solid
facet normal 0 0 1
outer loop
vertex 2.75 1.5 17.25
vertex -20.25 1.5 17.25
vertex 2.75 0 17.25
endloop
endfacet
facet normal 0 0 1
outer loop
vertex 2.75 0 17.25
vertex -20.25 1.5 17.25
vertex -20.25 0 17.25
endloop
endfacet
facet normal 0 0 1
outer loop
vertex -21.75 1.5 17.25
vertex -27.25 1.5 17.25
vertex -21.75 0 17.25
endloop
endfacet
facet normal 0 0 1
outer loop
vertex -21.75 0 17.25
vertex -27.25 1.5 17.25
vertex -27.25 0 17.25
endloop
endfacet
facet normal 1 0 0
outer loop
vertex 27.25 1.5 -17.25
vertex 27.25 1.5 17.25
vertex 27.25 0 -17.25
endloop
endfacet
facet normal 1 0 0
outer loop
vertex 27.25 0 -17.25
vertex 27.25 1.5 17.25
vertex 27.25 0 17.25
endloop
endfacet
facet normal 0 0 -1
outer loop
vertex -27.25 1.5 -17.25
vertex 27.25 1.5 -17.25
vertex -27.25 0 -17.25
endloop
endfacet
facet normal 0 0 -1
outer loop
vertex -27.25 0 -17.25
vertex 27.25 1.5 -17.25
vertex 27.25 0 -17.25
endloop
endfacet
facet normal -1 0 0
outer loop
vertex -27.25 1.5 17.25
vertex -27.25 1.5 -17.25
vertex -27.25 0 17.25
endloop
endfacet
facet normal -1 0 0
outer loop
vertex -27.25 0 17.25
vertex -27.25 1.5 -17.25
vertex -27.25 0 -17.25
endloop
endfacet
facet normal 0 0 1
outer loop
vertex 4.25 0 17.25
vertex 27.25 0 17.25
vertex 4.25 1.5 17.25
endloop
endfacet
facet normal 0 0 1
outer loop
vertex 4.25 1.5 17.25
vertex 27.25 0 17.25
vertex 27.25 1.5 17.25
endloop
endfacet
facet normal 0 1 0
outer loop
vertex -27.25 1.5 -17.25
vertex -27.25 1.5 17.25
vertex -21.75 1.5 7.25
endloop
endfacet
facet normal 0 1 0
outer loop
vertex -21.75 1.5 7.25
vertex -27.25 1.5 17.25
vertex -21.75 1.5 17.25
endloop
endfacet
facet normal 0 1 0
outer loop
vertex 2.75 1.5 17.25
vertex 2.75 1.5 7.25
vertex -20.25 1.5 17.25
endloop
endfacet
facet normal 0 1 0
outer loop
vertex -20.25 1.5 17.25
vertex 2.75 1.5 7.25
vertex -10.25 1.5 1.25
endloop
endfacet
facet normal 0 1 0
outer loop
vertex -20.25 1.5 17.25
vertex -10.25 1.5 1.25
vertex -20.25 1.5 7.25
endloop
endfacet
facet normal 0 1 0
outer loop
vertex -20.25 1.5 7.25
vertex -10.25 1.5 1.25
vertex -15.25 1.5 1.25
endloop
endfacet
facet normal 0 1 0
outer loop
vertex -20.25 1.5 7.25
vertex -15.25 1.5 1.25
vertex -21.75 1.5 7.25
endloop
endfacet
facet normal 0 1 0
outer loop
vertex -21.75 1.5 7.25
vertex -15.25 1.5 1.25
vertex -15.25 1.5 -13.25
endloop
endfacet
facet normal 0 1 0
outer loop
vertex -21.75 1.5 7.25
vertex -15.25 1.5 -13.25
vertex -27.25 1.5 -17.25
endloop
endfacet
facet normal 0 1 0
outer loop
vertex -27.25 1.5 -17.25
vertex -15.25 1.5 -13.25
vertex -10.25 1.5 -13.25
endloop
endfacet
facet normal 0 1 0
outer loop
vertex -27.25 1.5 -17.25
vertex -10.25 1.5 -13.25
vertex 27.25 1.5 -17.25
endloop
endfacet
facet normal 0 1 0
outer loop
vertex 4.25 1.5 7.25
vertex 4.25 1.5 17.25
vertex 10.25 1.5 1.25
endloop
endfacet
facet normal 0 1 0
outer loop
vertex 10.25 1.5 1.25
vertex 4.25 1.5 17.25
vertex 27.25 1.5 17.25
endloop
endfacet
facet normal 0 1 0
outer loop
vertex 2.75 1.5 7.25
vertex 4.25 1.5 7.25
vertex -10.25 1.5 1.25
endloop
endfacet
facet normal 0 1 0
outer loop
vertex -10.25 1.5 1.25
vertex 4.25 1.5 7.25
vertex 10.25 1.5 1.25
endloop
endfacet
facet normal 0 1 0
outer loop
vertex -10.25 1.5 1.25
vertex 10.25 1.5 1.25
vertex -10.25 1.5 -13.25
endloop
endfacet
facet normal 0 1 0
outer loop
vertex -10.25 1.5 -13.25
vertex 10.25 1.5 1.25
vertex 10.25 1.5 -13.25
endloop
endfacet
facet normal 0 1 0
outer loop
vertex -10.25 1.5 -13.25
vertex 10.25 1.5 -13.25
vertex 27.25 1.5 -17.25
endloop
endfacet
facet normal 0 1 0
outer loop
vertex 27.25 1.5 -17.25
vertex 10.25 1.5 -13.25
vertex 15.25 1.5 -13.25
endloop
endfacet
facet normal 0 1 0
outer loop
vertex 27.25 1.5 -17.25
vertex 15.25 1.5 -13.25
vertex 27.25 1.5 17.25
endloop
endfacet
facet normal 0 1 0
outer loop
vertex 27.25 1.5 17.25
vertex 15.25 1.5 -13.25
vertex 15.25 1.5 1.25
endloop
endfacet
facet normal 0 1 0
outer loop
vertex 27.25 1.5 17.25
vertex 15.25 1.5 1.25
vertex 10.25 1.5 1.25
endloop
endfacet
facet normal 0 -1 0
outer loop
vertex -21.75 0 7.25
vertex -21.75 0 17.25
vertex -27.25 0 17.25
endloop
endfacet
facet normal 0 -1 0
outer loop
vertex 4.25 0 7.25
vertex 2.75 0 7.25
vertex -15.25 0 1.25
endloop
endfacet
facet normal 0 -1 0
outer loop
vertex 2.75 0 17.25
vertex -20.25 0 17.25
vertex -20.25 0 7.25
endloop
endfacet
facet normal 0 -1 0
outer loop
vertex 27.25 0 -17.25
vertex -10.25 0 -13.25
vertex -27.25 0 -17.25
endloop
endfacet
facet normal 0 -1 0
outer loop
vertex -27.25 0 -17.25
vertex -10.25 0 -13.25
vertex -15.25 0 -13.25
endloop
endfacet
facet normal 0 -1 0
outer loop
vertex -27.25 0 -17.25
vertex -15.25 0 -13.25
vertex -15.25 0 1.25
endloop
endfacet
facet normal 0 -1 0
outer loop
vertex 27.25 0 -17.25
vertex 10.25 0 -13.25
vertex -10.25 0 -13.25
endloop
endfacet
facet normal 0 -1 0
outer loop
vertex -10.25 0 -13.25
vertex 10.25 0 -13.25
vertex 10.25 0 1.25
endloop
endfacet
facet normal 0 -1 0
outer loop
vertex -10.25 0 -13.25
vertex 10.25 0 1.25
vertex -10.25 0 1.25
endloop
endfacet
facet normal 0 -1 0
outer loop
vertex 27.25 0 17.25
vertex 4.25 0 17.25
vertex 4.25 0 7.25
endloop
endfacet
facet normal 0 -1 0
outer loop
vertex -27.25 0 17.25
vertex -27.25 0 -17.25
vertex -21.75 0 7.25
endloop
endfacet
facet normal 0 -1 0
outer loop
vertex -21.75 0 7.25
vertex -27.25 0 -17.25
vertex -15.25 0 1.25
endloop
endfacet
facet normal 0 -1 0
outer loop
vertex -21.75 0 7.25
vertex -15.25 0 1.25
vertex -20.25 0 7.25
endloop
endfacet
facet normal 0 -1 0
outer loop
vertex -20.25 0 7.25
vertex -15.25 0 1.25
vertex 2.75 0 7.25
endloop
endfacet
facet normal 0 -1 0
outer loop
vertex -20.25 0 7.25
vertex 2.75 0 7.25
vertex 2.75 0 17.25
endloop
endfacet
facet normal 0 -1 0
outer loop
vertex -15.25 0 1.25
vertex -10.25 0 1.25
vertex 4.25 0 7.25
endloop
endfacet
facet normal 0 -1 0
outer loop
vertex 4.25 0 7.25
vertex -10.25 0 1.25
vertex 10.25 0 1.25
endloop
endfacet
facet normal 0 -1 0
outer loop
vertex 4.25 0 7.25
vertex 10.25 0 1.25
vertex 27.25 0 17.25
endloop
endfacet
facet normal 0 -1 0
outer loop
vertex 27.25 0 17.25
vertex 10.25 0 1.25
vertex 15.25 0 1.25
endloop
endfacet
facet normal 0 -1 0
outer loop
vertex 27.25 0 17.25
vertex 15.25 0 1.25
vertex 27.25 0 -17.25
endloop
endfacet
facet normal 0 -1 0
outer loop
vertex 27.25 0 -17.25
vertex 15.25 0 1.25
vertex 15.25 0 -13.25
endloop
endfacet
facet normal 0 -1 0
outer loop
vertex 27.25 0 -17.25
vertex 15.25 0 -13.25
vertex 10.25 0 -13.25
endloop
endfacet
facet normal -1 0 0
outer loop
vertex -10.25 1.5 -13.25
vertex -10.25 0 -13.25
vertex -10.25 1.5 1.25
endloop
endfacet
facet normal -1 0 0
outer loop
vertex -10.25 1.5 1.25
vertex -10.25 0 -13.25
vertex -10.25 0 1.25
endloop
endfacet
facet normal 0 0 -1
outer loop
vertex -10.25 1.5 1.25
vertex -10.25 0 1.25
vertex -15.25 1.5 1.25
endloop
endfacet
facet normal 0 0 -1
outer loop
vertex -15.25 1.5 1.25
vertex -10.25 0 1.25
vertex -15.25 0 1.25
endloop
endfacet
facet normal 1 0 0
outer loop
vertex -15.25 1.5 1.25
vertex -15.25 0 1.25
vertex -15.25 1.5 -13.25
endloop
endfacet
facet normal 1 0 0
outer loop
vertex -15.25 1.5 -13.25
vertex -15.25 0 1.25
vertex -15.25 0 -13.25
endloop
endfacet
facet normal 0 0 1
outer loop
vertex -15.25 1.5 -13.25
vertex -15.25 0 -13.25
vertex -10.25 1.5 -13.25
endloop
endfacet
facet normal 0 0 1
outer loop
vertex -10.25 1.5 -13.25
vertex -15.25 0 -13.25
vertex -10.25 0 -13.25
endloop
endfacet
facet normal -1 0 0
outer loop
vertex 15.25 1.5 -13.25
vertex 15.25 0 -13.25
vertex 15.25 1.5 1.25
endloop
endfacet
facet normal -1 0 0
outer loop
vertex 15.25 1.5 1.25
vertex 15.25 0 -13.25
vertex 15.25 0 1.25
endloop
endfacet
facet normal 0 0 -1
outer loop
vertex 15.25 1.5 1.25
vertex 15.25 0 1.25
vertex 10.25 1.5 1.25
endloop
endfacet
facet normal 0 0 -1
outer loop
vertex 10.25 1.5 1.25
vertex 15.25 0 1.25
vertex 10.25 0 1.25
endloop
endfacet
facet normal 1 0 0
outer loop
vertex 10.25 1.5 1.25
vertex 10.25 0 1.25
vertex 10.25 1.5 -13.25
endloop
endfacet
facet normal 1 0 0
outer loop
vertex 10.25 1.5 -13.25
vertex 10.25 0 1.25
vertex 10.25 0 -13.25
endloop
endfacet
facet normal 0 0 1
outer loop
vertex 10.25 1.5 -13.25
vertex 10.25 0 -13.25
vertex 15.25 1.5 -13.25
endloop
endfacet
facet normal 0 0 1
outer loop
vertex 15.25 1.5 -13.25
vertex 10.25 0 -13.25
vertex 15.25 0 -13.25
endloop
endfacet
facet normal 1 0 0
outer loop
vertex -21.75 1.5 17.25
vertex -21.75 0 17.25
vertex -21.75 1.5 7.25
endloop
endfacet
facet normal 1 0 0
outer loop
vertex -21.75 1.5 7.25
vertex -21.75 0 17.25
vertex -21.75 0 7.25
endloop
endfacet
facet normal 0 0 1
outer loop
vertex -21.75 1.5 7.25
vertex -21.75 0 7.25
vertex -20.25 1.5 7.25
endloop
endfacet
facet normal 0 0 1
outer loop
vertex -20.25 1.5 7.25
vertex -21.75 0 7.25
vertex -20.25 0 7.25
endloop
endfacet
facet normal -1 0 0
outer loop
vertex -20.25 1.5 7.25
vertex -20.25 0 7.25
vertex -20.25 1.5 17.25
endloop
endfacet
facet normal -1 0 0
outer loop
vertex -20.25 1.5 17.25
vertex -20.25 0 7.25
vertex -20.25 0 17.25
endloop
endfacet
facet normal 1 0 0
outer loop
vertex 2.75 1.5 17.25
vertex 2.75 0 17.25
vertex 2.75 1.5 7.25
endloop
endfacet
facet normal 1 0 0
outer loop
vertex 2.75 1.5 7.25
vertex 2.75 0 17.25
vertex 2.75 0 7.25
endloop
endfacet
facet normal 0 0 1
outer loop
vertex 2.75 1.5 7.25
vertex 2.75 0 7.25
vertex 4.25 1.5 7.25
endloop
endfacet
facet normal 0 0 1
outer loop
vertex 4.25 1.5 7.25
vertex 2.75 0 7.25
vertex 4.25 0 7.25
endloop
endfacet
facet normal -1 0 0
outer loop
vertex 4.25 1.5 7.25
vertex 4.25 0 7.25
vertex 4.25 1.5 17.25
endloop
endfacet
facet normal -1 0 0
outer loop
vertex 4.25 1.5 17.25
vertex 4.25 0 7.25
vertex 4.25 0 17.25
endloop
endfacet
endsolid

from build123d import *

# Parameters (mm, degrees)
SKETCH1_W           = 54.5
SKETCH1_H           = 34.5
BOSS_EXTRUDE1_DEPTH = 1.5
SKETCH6_W           = 5
SKETCH6_H           = 14.5
CUT_EXTRUDE1_DEPTH  = 2
SKETCH9_W           = 5
SKETCH9_H           = 14.5
CUT_EXTRUDE2_DEPTH  = 2
SKETCH27_W          = 1.5
SKETCH27_H          = 10
CUT_EXTRUDE3_DEPTH  = 2
SKETCH37_W          = 1.5
SKETCH37_H          = 10
CUT_EXTRUDE10_DEPTH = 2


with BuildPart() as part:
    # Sketch1 → Boss-Extrude1 (new body)
    with BuildSketch(Plane(origin=(0, 0, 0), x_dir=(1, 0, 0), z_dir=(0, 1, 0))):
        Rectangle(SKETCH1_W, SKETCH1_H)
    extrude(amount=BOSS_EXTRUDE1_DEPTH)

    # Sketch6 → Cut-Extrude1 (cut)
    with BuildSketch(Plane(origin=(0, 1.5, 0), x_dir=(1, 0, 0), z_dir=(0, 1, 0))):
        with Locations((-12.75, 6)):
            Rectangle(SKETCH6_W, SKETCH6_H)
    extrude(amount=-CUT_EXTRUDE1_DEPTH, mode=Mode.SUBTRACT)

    # Sketch9 → Cut-Extrude2 (cut)
    with BuildSketch(Plane(origin=(0, 1.5, 0), x_dir=(1, 0, 0), z_dir=(0, 1, 0))):
        with Locations((12.75, 6)):
            Rectangle(SKETCH9_W, SKETCH9_H)
    extrude(amount=-CUT_EXTRUDE2_DEPTH, mode=Mode.SUBTRACT)

    # Sketch27 → Cut-Extrude3 (cut)
    with BuildSketch(Plane(origin=(0, 1.5, 0), x_dir=(1, 0, 0), z_dir=(0, 1, 0))):
        with Locations((-21, -12.25)):
            Rectangle(SKETCH27_W, SKETCH27_H)
    extrude(amount=-CUT_EXTRUDE3_DEPTH, mode=Mode.SUBTRACT)

    # Sketch37 → Cut-Extrude10 (cut)
    with BuildSketch(Plane(origin=(0, 1.5, 0), x_dir=(1, 0, 0), z_dir=(0, 1, 0))):
        with Locations((3.5, -12.25)):
            Rectangle(SKETCH37_W, SKETCH37_H)
    extrude(amount=-CUT_EXTRUDE10_DEPTH, mode=Mode.SUBTRACT)


solid = part.part
